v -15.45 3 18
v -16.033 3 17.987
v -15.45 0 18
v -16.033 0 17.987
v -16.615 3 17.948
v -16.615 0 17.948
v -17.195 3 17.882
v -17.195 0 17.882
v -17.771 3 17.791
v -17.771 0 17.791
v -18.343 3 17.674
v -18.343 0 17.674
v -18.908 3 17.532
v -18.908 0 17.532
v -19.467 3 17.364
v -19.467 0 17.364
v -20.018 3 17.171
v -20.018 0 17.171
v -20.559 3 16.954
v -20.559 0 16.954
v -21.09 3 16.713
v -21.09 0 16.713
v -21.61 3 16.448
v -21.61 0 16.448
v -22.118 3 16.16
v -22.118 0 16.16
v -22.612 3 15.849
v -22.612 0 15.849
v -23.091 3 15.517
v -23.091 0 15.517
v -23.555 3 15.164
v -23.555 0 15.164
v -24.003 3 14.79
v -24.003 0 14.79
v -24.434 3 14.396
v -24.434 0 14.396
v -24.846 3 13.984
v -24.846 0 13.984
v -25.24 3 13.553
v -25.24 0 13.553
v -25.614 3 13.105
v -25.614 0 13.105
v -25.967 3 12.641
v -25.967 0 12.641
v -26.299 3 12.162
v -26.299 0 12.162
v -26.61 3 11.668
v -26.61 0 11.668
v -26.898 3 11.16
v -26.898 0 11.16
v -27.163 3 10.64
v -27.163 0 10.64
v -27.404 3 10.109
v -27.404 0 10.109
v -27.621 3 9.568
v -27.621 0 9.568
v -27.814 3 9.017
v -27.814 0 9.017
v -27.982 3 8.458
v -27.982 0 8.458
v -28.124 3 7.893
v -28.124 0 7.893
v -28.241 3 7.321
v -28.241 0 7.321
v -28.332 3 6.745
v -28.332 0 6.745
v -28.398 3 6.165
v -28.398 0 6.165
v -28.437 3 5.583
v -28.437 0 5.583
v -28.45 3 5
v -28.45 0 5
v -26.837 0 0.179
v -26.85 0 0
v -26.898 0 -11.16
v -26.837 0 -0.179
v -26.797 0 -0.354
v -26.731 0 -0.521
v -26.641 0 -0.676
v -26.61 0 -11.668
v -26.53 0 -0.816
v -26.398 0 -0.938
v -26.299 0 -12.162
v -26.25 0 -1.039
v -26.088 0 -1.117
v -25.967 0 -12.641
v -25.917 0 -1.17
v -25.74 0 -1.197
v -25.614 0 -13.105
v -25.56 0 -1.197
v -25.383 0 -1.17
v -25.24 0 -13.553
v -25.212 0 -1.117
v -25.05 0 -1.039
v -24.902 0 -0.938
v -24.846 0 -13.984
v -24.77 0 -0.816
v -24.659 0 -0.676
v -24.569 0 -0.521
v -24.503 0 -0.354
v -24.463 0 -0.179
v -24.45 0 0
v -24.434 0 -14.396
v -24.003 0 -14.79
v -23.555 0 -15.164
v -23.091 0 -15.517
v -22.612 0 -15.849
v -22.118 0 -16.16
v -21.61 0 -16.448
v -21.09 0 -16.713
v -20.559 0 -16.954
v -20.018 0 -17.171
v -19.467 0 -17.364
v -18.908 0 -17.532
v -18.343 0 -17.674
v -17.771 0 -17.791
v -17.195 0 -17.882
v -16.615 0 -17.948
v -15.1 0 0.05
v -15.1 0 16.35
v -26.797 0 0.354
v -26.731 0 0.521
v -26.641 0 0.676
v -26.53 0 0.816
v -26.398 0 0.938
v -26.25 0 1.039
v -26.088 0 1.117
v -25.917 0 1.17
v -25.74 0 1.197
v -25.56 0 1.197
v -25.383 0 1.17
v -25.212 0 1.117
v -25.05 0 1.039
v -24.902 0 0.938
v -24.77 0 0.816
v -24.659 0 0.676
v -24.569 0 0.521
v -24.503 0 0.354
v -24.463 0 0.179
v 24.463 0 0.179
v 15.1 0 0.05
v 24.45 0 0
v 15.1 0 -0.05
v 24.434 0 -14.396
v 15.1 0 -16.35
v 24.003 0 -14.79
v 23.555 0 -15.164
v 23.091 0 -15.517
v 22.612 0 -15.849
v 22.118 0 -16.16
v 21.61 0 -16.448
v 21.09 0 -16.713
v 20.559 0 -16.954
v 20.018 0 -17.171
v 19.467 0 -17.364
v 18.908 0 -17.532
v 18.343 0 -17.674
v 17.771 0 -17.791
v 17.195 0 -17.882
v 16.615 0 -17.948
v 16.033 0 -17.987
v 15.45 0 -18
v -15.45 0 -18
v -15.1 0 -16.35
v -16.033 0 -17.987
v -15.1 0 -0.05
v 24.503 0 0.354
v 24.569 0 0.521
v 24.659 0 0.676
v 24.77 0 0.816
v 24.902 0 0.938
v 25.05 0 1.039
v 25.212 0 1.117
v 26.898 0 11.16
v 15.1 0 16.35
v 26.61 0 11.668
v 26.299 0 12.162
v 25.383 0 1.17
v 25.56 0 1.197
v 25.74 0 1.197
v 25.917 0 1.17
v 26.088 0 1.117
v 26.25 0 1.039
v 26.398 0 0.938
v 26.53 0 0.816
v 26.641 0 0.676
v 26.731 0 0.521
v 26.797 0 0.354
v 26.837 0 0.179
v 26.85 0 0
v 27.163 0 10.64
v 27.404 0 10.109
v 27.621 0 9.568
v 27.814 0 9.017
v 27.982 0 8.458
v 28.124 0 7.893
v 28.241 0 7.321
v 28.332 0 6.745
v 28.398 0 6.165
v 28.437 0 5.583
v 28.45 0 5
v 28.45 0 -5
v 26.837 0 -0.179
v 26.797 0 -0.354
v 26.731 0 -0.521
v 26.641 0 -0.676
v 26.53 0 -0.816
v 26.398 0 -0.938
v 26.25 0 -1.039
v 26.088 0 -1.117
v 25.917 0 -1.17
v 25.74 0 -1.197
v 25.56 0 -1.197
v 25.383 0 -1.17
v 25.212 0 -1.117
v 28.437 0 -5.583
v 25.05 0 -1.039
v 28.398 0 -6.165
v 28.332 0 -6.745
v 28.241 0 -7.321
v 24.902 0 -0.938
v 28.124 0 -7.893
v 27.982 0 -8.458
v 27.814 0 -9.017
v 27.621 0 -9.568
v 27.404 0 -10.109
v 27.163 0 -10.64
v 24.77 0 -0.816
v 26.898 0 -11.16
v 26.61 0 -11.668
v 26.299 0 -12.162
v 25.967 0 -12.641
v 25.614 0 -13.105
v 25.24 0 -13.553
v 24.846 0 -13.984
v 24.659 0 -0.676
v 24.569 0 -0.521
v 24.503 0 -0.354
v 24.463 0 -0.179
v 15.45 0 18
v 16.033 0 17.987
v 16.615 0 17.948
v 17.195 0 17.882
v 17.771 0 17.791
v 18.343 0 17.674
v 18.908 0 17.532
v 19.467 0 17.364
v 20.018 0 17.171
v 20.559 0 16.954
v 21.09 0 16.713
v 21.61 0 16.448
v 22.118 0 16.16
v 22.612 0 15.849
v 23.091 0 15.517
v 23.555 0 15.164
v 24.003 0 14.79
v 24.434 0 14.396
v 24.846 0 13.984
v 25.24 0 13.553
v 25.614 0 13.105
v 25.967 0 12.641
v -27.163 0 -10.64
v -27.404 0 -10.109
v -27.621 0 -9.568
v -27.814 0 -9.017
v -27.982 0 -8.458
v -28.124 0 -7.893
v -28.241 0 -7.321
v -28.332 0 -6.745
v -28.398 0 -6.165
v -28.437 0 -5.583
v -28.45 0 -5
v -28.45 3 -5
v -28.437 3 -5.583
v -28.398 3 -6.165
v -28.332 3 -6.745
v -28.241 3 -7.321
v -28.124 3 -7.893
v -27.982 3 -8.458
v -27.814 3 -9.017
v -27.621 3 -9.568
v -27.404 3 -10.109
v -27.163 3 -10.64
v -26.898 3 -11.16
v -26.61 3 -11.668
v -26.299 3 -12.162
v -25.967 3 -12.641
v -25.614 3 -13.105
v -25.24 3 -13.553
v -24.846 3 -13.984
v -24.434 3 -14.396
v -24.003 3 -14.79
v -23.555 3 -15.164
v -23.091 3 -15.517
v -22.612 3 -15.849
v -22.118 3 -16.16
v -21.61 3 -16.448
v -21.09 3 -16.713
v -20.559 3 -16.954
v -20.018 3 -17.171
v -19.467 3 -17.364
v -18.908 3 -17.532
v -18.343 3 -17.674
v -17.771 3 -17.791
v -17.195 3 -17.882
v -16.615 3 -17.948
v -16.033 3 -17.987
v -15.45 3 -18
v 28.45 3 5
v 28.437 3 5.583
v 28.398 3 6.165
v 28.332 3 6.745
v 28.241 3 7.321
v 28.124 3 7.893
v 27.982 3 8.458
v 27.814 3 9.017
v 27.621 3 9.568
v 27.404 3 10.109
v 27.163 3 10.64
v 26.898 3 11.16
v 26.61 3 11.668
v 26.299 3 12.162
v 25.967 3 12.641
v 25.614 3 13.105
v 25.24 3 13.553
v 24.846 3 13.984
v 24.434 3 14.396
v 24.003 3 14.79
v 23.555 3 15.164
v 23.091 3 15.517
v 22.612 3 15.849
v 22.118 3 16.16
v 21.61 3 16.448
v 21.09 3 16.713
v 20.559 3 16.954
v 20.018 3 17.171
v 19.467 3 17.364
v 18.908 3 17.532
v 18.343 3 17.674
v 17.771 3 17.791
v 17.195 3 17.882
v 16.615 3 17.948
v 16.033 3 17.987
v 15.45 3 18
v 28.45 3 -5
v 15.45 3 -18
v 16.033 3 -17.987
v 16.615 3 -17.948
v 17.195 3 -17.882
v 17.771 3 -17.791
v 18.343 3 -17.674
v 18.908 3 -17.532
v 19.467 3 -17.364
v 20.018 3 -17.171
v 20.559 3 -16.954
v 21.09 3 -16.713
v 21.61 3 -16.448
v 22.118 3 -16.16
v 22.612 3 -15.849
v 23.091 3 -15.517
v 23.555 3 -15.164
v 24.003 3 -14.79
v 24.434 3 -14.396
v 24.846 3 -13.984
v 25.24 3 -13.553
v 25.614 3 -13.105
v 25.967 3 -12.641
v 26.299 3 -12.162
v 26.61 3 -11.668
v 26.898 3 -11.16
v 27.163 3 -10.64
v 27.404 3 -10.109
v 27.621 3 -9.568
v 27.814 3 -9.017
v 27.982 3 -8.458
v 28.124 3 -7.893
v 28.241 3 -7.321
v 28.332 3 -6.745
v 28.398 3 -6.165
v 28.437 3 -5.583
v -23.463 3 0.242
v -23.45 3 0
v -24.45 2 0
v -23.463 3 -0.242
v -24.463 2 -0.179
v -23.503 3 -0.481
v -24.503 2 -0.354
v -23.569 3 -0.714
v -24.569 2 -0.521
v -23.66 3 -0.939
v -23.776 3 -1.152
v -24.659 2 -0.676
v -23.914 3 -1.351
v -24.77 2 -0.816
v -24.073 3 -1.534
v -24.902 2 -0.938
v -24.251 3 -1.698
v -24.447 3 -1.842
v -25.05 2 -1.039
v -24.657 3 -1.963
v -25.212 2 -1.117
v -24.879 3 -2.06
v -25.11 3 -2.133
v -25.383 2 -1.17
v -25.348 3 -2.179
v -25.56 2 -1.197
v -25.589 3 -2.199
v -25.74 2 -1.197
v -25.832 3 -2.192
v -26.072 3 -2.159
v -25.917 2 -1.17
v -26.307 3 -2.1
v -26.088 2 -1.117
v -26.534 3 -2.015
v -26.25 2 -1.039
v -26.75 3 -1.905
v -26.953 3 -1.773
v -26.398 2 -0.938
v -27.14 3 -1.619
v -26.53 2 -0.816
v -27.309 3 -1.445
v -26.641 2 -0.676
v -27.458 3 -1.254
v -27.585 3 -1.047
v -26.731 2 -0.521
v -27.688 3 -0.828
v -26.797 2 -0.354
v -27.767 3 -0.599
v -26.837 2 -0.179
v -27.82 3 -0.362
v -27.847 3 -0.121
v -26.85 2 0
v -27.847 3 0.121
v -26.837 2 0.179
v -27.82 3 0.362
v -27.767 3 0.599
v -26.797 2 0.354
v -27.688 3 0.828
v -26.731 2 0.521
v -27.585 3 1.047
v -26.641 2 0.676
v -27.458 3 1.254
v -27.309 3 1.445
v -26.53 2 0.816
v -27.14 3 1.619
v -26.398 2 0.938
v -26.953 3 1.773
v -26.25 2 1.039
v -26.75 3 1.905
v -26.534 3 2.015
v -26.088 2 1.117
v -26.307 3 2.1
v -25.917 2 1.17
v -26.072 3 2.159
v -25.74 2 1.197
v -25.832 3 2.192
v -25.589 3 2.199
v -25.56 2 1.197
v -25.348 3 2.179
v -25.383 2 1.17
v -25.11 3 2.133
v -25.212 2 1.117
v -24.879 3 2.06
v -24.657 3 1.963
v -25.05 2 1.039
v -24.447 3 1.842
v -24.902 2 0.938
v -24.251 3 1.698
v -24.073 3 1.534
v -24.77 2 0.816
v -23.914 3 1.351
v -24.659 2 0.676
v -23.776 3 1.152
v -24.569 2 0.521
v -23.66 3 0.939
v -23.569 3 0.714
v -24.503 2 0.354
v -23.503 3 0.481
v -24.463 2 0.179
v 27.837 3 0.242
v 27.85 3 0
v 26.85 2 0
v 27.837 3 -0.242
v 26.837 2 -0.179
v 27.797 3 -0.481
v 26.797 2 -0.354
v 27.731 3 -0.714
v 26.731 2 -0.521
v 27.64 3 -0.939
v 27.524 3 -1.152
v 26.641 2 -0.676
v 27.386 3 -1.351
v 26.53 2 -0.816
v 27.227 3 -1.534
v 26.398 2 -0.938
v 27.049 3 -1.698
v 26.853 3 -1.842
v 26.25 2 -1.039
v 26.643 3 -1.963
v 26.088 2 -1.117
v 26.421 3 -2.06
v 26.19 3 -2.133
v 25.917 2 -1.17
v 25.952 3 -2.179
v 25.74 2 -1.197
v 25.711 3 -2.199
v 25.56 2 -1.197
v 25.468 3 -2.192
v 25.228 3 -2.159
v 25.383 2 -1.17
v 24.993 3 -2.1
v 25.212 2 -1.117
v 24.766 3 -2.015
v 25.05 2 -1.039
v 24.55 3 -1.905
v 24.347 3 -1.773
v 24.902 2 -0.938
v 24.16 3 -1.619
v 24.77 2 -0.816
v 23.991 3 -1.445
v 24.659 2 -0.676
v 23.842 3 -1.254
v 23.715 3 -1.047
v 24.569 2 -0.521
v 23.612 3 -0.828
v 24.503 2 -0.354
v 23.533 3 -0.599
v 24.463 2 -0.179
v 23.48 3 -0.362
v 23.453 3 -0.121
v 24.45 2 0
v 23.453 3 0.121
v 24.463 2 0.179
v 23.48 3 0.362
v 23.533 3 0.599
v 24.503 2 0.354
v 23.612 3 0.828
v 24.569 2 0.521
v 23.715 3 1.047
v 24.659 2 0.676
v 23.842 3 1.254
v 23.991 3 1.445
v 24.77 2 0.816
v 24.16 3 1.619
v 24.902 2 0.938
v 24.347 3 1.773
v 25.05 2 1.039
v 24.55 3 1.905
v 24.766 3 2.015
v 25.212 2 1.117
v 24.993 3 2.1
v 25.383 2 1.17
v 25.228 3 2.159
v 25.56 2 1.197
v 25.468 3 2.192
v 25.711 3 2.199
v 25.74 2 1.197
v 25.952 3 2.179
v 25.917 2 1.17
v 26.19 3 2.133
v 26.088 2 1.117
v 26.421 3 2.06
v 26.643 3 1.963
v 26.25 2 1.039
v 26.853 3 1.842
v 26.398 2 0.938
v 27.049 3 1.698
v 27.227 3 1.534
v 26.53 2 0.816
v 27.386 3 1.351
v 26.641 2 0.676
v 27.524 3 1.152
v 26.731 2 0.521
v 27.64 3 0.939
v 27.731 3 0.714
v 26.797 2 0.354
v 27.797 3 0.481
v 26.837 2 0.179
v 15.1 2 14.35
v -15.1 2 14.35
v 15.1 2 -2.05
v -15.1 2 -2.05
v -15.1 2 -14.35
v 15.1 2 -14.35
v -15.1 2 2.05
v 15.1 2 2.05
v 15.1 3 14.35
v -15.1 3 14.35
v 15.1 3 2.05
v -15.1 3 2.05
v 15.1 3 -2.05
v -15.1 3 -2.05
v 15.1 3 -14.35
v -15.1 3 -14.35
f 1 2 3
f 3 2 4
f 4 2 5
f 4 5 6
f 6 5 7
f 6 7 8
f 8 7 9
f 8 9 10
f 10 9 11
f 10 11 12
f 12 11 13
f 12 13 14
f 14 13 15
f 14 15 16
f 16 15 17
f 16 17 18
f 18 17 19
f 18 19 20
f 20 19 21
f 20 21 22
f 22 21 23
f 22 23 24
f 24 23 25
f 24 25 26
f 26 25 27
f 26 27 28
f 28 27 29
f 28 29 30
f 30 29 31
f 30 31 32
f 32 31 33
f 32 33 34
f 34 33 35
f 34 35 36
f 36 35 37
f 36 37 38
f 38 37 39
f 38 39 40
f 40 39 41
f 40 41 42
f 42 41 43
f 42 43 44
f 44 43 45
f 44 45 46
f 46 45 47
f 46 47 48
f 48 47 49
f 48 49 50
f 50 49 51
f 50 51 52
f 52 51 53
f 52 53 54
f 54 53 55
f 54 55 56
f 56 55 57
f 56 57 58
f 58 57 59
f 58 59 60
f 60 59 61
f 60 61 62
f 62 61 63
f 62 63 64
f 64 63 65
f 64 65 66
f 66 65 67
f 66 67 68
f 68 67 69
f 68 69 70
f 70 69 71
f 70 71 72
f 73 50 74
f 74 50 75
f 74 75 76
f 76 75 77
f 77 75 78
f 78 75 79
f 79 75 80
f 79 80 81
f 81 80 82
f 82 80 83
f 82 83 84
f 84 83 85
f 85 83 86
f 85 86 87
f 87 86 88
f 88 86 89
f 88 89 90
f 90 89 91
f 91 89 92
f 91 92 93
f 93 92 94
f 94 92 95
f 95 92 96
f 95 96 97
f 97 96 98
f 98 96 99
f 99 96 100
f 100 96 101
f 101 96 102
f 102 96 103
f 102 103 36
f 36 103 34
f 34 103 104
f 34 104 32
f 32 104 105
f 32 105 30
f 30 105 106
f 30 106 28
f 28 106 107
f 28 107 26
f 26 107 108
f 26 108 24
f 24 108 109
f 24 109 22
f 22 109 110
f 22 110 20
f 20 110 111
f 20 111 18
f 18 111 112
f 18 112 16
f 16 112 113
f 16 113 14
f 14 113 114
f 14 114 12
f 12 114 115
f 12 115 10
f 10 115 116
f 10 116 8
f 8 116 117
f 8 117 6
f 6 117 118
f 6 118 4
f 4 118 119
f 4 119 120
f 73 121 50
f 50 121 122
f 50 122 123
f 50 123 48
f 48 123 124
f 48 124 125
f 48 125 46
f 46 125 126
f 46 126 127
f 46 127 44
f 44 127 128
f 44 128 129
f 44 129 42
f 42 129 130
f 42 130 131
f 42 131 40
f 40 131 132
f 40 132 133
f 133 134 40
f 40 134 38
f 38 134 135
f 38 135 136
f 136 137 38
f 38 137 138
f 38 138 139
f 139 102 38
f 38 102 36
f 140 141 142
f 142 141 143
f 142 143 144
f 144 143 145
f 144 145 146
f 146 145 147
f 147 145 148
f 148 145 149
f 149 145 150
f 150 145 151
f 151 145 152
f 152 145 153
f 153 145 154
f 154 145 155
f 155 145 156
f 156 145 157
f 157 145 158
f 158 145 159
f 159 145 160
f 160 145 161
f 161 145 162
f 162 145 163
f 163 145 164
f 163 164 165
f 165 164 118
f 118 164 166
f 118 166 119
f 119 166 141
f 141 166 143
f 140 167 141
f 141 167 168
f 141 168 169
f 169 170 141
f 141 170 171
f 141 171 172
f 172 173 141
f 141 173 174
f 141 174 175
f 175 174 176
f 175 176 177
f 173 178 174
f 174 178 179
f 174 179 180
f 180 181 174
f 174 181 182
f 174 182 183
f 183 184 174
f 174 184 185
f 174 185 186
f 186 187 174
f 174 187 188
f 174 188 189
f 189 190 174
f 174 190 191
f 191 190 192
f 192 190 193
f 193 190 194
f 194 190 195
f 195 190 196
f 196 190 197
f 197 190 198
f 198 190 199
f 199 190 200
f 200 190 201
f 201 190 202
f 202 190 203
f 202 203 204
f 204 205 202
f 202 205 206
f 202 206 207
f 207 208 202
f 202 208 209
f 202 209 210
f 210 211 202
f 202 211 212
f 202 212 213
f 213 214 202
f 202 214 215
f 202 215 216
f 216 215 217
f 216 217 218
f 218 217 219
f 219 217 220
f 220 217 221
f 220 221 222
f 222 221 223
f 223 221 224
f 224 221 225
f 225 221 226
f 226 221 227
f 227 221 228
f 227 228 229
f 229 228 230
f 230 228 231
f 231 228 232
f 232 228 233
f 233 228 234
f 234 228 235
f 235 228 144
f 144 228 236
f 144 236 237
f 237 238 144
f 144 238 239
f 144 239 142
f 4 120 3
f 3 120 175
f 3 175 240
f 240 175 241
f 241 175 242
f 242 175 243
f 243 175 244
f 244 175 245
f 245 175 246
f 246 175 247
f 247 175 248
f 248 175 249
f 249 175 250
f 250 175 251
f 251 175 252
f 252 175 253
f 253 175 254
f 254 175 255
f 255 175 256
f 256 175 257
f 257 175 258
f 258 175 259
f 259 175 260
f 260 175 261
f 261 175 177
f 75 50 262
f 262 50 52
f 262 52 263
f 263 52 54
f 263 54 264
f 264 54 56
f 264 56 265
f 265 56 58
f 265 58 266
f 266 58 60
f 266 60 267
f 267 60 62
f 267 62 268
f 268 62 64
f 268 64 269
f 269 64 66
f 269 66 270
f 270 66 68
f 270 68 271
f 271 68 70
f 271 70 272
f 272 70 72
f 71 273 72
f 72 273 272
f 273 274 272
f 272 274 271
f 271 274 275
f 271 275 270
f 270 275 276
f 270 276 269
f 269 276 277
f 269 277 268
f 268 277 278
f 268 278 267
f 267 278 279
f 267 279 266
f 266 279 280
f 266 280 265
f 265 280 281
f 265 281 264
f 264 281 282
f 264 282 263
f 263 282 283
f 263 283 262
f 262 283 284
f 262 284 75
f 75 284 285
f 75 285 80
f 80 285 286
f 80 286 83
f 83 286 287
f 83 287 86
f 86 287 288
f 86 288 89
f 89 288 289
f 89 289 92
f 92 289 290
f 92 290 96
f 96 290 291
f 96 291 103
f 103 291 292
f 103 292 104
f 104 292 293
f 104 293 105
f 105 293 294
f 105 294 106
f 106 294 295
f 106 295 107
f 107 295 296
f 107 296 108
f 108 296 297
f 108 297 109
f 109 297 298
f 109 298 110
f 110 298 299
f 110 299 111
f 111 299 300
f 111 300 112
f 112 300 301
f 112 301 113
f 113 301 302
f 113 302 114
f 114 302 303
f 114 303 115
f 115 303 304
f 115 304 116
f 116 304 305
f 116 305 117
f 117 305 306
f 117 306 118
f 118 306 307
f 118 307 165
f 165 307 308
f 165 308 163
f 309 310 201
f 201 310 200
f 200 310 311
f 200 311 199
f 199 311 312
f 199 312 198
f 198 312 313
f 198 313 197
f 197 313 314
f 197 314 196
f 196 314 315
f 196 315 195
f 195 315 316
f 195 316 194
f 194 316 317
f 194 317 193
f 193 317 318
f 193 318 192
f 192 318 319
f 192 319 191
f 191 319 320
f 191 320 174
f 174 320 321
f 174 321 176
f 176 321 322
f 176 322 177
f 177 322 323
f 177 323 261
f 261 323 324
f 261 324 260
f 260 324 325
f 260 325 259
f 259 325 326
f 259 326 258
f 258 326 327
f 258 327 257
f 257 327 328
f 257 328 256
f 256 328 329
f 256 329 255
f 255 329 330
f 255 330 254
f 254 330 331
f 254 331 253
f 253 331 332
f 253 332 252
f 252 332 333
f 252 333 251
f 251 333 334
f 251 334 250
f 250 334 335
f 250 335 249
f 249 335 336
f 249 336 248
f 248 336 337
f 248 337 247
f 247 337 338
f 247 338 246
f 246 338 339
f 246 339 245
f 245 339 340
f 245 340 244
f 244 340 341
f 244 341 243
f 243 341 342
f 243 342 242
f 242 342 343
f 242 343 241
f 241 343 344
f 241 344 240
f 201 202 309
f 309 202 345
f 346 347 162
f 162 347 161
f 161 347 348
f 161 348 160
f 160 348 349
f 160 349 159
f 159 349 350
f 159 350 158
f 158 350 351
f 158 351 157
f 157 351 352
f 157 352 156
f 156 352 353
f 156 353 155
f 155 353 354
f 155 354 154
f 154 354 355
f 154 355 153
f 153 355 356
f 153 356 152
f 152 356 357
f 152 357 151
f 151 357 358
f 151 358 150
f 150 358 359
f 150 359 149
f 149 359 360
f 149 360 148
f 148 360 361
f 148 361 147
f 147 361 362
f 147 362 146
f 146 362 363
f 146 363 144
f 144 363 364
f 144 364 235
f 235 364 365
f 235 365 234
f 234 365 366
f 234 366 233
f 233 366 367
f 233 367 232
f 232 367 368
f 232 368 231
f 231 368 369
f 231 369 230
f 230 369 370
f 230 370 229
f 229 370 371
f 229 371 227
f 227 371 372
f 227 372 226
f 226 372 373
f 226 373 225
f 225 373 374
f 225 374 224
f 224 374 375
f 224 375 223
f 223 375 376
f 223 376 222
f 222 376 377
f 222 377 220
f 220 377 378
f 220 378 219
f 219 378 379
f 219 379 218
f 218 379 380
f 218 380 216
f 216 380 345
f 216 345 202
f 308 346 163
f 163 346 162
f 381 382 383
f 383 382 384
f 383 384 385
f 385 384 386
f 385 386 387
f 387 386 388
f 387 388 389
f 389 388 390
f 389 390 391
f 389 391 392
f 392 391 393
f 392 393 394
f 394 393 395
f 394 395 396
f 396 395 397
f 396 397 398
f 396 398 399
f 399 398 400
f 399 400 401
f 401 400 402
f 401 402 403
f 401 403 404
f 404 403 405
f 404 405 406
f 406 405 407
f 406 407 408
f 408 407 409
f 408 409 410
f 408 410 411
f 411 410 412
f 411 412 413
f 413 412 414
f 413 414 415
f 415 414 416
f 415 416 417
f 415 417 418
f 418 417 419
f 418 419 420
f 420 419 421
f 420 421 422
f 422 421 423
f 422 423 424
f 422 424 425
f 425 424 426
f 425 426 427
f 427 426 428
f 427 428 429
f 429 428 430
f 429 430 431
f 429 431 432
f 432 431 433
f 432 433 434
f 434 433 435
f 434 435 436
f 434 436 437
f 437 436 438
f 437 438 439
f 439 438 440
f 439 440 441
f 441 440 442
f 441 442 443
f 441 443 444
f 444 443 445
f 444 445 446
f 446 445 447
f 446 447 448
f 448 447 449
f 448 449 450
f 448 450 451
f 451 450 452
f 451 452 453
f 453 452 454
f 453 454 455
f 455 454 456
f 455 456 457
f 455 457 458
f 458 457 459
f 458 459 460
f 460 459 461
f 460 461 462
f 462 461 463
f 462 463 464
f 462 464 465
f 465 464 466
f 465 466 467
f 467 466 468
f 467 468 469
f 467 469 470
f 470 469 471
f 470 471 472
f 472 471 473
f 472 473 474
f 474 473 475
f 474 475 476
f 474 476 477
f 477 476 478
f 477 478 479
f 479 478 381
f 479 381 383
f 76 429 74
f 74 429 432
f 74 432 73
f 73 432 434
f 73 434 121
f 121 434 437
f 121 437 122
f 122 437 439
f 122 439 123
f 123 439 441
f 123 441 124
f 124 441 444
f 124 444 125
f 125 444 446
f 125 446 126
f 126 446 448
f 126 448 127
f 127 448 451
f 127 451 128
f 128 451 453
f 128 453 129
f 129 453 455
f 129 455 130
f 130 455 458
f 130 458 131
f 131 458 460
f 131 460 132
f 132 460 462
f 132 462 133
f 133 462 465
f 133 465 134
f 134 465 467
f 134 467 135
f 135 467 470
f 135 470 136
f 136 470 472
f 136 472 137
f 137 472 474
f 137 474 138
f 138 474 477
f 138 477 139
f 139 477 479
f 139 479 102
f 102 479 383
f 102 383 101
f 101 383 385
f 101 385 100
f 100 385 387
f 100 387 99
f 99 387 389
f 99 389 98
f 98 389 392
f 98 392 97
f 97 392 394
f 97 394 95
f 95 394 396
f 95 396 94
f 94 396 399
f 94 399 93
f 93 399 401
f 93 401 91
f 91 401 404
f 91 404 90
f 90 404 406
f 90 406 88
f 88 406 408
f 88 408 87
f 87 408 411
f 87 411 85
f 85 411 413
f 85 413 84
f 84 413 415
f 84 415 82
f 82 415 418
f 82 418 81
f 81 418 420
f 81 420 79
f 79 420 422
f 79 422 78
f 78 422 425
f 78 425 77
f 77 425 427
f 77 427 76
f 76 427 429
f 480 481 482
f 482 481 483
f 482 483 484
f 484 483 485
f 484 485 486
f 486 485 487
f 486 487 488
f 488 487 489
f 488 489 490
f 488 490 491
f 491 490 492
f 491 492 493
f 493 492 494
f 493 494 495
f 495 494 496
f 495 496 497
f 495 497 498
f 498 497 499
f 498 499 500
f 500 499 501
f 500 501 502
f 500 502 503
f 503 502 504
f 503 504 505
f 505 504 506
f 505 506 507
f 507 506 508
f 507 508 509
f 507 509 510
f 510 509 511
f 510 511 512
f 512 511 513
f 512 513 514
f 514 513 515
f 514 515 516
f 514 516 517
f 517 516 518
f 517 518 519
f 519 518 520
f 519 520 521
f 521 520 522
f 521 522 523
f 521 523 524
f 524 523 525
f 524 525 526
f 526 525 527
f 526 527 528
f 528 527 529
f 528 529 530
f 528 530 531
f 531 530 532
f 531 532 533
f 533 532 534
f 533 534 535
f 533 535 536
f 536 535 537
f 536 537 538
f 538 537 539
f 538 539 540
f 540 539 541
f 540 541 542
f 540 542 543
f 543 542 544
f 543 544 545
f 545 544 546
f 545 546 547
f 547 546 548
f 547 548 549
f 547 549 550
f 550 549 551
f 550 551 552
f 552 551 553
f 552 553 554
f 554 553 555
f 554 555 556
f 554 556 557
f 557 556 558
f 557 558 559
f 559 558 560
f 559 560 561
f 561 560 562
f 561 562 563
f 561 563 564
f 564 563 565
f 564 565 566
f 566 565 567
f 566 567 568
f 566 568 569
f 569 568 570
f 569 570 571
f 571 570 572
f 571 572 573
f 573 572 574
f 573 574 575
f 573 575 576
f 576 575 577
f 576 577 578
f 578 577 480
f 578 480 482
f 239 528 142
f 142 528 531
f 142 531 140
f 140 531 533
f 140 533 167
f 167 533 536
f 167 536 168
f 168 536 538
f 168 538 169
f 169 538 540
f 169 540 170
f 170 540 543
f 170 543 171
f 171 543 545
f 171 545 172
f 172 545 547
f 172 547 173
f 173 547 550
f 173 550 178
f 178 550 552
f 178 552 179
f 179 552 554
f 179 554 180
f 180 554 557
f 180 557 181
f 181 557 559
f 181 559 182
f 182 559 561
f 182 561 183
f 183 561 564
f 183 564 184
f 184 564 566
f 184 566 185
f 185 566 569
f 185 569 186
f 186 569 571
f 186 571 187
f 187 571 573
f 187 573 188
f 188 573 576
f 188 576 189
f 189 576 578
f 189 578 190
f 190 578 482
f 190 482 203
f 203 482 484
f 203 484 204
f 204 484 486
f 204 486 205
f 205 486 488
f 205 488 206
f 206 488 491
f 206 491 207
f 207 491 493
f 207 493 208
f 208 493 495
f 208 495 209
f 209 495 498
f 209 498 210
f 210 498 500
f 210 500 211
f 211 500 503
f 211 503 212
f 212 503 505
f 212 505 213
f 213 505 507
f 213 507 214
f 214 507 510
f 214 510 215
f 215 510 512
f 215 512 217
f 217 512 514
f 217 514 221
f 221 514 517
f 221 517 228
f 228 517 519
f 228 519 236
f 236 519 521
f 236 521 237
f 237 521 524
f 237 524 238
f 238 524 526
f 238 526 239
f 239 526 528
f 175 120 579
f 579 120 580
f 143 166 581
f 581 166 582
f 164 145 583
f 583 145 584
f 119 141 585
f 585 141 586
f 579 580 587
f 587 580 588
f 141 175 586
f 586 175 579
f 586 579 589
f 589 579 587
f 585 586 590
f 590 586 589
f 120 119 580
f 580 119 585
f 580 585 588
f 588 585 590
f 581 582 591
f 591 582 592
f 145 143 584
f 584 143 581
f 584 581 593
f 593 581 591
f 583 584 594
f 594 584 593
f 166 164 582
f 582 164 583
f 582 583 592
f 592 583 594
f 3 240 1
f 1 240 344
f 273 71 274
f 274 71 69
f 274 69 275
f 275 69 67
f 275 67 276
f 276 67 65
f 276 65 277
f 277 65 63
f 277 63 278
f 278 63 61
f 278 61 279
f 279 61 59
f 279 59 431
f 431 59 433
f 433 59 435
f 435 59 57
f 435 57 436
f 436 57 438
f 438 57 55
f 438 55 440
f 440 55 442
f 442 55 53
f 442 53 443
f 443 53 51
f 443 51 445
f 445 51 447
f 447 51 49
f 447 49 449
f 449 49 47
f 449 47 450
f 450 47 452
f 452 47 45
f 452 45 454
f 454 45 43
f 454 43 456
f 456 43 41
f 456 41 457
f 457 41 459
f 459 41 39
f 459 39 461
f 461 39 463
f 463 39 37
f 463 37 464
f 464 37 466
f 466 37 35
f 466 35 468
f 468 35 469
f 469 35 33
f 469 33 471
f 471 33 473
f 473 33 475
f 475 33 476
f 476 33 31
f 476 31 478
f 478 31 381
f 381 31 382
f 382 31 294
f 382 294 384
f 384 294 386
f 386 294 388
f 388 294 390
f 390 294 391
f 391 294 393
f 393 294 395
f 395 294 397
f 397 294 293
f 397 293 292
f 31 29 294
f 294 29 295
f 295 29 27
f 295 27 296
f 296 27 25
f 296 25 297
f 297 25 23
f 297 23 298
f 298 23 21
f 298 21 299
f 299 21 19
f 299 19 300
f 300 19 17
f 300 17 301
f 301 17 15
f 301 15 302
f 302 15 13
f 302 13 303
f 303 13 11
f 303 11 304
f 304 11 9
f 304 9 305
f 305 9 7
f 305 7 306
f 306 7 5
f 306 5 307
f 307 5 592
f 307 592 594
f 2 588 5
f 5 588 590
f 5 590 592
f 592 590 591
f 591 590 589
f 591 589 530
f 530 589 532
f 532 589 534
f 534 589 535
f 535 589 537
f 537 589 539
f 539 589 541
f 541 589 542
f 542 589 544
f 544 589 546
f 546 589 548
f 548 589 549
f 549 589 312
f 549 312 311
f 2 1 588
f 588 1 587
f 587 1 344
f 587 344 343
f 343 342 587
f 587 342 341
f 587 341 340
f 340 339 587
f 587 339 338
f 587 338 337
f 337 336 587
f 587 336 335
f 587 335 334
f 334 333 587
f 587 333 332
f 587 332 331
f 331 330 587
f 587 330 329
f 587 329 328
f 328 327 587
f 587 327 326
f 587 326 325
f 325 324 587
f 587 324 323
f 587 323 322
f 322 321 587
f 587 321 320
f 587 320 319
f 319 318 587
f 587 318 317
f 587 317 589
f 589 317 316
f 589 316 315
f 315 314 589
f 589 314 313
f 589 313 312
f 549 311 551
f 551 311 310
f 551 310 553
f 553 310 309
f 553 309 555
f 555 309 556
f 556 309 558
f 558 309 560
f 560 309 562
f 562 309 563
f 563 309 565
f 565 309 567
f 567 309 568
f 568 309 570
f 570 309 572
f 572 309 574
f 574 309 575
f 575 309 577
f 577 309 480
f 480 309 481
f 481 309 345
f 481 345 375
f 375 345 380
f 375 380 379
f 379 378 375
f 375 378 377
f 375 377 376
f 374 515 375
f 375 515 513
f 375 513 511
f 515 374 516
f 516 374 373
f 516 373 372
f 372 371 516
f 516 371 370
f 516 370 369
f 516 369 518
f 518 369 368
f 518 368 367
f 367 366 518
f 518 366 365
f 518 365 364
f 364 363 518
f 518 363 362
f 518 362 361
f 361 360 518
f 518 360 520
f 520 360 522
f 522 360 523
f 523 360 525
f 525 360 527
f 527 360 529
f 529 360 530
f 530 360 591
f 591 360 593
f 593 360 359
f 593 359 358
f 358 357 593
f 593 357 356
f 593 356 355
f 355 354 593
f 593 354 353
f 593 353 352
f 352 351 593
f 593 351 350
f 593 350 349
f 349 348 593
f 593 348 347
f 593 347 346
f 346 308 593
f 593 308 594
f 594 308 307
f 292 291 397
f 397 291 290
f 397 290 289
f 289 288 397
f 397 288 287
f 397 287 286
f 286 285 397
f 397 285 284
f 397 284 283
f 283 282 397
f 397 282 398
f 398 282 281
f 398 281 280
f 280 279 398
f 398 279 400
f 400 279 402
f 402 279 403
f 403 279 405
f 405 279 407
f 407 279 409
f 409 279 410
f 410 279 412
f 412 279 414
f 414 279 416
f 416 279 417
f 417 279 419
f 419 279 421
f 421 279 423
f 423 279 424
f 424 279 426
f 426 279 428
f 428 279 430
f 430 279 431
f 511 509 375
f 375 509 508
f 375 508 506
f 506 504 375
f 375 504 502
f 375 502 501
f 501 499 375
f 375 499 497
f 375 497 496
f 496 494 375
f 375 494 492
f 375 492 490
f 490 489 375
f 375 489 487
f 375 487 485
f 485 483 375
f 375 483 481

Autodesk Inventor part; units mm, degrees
ref_plane "YZ Plane" through (0, 0, 0) normal (1, 0, 0) x (0, 1, 0)
ref_plane "XZ Plane" through (0, 0, 0) normal (0, 1, 0) x (-1, 0, 0)
ref_plane "XY Plane" through (0, 0, 0) normal (0, 0, 1) x (1, 0, 0)
sketch "Skizze1" plane through (0, 0, 0) normal (0, 1, 0) x (-1, 0, 0)
  line L0 (15.1, 14.35) -> (-15.1, 14.35)
  line L1 (-15.1, 14.35) -> (-15.1, 2.05)
  line L2 (-15.1, 2.05) -> (15.1, 2.05)
  line L3 (15.1, 2.05) -> (15.1, 14.35)
  line L4 (15.1, 14.35) -> (-15.1, 2.05) construction
  line L5 (-15.1, 14.35) -> (15.1, 2.05) construction
  line L6 (15.1, -2.05) -> (-15.1, -2.05)
  line L7 (-15.1, -2.05) -> (-15.1, -14.35)
  line L8 (-15.1, -14.35) -> (15.1, -14.35)
  line L9 (15.1, -14.35) -> (15.1, -2.05)
  line L10 (15.1, -2.05) -> (-15.1, -14.35) construction
  line L11 (-15.1, -2.05) -> (15.1, -14.35) construction
  line L12 (28.45, 18) -> (-28.45, 18)
  line L13 (-28.45, 18) -> (-28.45, -18)
  line L14 (-28.45, -18) -> (28.45, -18)
  line L15 (28.45, -18) -> (28.45, 18)
  line L16 (28.45, 18) -> (-28.45, -18) construction
  line L17 (-28.45, 18) -> (28.45, -18) construction
  point P0 (0, 0)
  point P1 (0, 8.2)
  point P2 (0, -8.2)
  dimension "d0" = 30.2
  dimension "d1" = 12.3
  dimension "d2" = 30.2
  dimension "d3" = 12.3
  dimension "d5" = 4.1
  dimension "d6" = 2.05
  dimension "d7" = 56.9
  dimension "d8" = 36
extrude "Extrusion1" add sketch "Skizze1" along normal blind 3
chamfer "Fase1" distance 2 angle 45 4 edges at (0, 0, 2.05) (0, 0, -14.35) (0, 0, -2.05) (0, 0, 14.35)
sketch "Skizze2" plane through (0, 3, 0) normal (0, 1, 0) x (1, 0, 0)
  line L0 (28.45, 18) -> (-28.45, 18) projected
  line L1 (-25.65, -18) -> (25.65, -18)
  line L2 (25.65, -18) -> (25.65, 18)
  line L3 (25.65, 18) -> (-25.65, 18)
  line L4 (-25.65, 18) -> (-25.65, -18)
  line L5 (-25.65, -18) -> (25.65, 18) construction
  line L6 (25.65, -18) -> (-25.65, 18) construction
  line L7 (-25.65, 0) -> (25.65, 0)
  point P0 (0, 0)
  dimension "d14" = 51.3
hole "Bohrung1" at (-25.65, 3, 0) at (25.65, 3, 0) direction (0, -1, 0) diameter 2.4 end through all countersink diameter 4.4 countersink angle 90 clearance for "Flachkopfmaschinenschraube" size "M2" standard "ANSI Metrisches M Profil"
fillet "Rundung1" radius 13 4 edges at (28.45, 1.5, -18) (28.45, 1.5, 18) (-28.45, 1.5, -18) (-28.45, 1.5, 18)
properties part number "Wago2Din_2Way"
